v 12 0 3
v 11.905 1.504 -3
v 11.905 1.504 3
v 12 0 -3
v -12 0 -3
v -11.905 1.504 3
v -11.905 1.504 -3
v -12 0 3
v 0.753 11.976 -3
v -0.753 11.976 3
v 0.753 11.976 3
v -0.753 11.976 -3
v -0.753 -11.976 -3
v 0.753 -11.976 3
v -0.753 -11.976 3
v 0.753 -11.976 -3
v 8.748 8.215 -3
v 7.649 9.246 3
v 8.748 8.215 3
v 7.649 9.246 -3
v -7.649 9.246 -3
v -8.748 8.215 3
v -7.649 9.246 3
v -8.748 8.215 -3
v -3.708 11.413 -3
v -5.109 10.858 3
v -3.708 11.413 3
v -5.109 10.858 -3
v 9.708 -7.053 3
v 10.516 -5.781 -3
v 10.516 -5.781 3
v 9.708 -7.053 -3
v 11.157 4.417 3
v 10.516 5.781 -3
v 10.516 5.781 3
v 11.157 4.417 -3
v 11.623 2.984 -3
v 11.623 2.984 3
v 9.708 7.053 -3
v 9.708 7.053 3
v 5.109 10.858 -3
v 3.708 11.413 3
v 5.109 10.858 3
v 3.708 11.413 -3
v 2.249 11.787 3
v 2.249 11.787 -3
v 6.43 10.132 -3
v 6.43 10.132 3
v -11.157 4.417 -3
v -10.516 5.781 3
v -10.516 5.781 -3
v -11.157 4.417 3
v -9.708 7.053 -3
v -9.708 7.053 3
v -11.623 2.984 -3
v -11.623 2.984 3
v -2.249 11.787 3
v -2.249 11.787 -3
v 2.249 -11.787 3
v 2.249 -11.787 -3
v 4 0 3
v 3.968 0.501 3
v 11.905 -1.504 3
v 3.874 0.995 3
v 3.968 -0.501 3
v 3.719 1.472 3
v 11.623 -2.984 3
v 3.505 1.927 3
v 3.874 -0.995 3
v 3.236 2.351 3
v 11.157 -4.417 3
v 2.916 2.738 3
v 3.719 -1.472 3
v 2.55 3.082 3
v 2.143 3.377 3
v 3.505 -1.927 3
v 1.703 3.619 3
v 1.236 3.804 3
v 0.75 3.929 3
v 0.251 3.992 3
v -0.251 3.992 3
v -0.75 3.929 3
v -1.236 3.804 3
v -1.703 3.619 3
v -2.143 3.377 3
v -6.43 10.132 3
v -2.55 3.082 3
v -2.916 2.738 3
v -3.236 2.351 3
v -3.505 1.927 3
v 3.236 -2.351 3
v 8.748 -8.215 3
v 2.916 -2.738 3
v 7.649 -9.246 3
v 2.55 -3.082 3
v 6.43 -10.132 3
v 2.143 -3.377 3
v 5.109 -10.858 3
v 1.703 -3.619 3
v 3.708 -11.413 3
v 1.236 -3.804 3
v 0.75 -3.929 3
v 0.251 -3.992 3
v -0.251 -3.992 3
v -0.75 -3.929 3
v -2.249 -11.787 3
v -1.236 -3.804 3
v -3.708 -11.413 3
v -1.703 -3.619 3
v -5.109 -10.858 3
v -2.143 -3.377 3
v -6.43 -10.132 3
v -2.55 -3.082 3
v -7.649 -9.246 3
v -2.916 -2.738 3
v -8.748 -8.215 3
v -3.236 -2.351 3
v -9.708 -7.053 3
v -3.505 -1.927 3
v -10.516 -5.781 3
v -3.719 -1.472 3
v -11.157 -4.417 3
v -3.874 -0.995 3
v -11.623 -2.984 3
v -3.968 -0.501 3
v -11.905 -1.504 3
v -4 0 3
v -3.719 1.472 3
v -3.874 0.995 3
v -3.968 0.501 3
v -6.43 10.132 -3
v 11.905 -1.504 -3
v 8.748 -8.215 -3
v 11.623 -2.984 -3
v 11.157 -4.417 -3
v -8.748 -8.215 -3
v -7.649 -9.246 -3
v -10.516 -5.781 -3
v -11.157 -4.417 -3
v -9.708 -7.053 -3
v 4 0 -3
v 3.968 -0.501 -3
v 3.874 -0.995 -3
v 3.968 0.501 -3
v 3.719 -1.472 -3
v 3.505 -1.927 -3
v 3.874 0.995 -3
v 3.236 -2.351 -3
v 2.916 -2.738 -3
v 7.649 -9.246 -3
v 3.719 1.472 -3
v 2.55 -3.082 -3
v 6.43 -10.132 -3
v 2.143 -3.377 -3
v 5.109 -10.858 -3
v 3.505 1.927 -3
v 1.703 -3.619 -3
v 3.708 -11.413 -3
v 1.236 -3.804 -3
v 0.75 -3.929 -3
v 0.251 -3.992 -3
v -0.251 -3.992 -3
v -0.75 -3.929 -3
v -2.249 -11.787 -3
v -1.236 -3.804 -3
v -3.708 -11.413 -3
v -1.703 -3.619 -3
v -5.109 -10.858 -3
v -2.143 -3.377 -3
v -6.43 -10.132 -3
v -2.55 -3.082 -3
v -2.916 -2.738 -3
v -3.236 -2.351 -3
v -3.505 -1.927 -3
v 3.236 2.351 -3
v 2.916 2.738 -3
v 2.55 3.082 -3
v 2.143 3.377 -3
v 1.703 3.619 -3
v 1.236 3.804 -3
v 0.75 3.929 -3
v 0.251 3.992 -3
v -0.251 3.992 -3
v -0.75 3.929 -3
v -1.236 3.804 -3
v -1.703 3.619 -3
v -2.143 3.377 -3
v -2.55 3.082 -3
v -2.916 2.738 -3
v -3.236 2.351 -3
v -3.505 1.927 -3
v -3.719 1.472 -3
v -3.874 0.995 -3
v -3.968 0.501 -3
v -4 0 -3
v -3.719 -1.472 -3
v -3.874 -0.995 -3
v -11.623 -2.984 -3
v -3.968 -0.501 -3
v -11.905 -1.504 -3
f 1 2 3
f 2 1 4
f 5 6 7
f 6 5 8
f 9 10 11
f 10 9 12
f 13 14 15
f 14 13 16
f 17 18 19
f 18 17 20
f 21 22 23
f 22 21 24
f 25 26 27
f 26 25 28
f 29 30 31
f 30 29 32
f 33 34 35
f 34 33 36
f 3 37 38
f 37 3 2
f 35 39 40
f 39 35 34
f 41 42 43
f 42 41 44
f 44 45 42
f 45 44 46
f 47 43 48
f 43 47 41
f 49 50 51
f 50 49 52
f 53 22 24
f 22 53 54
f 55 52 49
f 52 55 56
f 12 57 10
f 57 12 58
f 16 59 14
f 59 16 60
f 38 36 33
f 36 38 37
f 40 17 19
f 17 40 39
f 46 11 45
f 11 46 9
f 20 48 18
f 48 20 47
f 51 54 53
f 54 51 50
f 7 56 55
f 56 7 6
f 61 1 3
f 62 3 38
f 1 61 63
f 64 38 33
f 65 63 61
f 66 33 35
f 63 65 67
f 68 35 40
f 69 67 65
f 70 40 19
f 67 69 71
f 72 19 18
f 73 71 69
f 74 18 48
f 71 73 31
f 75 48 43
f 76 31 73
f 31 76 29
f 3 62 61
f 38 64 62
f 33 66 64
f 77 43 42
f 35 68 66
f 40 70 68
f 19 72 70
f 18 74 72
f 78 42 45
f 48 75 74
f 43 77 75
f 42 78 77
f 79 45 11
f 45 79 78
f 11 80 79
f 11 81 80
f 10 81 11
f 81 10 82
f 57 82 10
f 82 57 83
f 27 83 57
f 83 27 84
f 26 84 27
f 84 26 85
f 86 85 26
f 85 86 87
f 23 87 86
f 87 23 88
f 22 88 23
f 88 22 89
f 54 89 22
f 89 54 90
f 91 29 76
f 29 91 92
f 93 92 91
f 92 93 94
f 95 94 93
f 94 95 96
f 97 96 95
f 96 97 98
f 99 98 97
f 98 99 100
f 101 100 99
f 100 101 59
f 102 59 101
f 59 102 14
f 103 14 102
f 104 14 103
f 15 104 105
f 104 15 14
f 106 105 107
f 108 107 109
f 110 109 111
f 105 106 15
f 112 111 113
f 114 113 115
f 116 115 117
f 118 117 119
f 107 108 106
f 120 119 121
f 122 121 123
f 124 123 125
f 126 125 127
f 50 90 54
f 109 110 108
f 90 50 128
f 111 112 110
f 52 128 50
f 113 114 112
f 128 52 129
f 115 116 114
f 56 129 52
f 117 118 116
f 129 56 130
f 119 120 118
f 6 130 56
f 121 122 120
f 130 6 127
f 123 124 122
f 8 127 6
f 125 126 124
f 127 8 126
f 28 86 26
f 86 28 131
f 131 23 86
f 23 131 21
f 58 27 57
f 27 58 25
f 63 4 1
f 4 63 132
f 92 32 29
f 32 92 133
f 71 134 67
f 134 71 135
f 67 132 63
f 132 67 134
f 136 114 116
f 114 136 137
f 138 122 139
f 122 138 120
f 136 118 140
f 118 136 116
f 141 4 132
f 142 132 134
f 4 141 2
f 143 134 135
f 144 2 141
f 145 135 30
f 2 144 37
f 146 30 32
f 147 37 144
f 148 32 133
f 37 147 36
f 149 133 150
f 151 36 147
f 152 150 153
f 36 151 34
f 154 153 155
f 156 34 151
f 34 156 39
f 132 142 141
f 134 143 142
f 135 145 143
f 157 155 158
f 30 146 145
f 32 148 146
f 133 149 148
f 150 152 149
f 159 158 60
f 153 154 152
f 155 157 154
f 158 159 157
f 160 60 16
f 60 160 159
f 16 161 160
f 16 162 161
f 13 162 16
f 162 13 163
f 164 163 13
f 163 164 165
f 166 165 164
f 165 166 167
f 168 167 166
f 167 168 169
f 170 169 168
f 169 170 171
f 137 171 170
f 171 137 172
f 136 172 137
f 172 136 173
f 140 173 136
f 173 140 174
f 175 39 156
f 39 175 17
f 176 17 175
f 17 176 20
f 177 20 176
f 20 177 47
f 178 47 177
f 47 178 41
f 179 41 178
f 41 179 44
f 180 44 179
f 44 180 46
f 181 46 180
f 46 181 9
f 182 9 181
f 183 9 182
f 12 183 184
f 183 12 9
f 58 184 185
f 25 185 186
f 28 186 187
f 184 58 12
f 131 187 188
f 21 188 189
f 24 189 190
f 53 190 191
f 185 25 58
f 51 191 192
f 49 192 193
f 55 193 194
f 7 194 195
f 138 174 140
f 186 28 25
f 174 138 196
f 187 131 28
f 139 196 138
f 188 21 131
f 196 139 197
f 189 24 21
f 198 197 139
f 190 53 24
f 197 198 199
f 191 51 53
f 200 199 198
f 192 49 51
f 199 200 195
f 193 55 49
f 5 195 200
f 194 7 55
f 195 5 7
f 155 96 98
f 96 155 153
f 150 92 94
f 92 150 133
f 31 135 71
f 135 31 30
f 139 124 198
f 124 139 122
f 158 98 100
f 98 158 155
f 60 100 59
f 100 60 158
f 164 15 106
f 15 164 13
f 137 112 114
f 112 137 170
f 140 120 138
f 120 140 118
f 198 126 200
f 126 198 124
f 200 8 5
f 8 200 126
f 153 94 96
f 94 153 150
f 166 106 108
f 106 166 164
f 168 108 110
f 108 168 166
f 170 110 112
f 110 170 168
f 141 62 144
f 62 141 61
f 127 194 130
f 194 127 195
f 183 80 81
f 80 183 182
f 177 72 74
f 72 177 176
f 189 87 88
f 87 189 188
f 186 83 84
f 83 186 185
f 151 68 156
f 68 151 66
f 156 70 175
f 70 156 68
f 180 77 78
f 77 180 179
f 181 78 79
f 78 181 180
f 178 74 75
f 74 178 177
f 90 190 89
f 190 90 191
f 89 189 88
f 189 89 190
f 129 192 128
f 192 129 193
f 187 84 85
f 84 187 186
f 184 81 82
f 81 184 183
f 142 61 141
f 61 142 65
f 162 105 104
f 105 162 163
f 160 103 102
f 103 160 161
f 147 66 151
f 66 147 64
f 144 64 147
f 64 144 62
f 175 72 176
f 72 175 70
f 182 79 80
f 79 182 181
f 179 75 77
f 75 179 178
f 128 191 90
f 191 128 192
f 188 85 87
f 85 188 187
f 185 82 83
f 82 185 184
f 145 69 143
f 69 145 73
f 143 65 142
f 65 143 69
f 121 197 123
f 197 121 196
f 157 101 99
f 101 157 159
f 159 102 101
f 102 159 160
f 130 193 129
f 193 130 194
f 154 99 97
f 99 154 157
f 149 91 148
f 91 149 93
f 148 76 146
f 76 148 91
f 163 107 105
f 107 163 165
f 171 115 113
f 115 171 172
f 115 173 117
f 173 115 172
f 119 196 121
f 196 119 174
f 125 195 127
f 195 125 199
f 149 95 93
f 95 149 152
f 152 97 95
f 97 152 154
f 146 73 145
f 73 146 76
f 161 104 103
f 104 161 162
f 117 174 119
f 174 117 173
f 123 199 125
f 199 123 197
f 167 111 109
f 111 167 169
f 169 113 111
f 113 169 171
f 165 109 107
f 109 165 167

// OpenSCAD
$fn = 50;


difference() {
	union() {
		translate(v = [0, 0, -3.0000000000]) {
			cylinder(h = 6, r = 12.0000000000);
		}
	}
	union() {
		translate(v = [0, 0, -100.0000000000]) {
			cylinder(h = 200, r = 4);
		}
	}
}
